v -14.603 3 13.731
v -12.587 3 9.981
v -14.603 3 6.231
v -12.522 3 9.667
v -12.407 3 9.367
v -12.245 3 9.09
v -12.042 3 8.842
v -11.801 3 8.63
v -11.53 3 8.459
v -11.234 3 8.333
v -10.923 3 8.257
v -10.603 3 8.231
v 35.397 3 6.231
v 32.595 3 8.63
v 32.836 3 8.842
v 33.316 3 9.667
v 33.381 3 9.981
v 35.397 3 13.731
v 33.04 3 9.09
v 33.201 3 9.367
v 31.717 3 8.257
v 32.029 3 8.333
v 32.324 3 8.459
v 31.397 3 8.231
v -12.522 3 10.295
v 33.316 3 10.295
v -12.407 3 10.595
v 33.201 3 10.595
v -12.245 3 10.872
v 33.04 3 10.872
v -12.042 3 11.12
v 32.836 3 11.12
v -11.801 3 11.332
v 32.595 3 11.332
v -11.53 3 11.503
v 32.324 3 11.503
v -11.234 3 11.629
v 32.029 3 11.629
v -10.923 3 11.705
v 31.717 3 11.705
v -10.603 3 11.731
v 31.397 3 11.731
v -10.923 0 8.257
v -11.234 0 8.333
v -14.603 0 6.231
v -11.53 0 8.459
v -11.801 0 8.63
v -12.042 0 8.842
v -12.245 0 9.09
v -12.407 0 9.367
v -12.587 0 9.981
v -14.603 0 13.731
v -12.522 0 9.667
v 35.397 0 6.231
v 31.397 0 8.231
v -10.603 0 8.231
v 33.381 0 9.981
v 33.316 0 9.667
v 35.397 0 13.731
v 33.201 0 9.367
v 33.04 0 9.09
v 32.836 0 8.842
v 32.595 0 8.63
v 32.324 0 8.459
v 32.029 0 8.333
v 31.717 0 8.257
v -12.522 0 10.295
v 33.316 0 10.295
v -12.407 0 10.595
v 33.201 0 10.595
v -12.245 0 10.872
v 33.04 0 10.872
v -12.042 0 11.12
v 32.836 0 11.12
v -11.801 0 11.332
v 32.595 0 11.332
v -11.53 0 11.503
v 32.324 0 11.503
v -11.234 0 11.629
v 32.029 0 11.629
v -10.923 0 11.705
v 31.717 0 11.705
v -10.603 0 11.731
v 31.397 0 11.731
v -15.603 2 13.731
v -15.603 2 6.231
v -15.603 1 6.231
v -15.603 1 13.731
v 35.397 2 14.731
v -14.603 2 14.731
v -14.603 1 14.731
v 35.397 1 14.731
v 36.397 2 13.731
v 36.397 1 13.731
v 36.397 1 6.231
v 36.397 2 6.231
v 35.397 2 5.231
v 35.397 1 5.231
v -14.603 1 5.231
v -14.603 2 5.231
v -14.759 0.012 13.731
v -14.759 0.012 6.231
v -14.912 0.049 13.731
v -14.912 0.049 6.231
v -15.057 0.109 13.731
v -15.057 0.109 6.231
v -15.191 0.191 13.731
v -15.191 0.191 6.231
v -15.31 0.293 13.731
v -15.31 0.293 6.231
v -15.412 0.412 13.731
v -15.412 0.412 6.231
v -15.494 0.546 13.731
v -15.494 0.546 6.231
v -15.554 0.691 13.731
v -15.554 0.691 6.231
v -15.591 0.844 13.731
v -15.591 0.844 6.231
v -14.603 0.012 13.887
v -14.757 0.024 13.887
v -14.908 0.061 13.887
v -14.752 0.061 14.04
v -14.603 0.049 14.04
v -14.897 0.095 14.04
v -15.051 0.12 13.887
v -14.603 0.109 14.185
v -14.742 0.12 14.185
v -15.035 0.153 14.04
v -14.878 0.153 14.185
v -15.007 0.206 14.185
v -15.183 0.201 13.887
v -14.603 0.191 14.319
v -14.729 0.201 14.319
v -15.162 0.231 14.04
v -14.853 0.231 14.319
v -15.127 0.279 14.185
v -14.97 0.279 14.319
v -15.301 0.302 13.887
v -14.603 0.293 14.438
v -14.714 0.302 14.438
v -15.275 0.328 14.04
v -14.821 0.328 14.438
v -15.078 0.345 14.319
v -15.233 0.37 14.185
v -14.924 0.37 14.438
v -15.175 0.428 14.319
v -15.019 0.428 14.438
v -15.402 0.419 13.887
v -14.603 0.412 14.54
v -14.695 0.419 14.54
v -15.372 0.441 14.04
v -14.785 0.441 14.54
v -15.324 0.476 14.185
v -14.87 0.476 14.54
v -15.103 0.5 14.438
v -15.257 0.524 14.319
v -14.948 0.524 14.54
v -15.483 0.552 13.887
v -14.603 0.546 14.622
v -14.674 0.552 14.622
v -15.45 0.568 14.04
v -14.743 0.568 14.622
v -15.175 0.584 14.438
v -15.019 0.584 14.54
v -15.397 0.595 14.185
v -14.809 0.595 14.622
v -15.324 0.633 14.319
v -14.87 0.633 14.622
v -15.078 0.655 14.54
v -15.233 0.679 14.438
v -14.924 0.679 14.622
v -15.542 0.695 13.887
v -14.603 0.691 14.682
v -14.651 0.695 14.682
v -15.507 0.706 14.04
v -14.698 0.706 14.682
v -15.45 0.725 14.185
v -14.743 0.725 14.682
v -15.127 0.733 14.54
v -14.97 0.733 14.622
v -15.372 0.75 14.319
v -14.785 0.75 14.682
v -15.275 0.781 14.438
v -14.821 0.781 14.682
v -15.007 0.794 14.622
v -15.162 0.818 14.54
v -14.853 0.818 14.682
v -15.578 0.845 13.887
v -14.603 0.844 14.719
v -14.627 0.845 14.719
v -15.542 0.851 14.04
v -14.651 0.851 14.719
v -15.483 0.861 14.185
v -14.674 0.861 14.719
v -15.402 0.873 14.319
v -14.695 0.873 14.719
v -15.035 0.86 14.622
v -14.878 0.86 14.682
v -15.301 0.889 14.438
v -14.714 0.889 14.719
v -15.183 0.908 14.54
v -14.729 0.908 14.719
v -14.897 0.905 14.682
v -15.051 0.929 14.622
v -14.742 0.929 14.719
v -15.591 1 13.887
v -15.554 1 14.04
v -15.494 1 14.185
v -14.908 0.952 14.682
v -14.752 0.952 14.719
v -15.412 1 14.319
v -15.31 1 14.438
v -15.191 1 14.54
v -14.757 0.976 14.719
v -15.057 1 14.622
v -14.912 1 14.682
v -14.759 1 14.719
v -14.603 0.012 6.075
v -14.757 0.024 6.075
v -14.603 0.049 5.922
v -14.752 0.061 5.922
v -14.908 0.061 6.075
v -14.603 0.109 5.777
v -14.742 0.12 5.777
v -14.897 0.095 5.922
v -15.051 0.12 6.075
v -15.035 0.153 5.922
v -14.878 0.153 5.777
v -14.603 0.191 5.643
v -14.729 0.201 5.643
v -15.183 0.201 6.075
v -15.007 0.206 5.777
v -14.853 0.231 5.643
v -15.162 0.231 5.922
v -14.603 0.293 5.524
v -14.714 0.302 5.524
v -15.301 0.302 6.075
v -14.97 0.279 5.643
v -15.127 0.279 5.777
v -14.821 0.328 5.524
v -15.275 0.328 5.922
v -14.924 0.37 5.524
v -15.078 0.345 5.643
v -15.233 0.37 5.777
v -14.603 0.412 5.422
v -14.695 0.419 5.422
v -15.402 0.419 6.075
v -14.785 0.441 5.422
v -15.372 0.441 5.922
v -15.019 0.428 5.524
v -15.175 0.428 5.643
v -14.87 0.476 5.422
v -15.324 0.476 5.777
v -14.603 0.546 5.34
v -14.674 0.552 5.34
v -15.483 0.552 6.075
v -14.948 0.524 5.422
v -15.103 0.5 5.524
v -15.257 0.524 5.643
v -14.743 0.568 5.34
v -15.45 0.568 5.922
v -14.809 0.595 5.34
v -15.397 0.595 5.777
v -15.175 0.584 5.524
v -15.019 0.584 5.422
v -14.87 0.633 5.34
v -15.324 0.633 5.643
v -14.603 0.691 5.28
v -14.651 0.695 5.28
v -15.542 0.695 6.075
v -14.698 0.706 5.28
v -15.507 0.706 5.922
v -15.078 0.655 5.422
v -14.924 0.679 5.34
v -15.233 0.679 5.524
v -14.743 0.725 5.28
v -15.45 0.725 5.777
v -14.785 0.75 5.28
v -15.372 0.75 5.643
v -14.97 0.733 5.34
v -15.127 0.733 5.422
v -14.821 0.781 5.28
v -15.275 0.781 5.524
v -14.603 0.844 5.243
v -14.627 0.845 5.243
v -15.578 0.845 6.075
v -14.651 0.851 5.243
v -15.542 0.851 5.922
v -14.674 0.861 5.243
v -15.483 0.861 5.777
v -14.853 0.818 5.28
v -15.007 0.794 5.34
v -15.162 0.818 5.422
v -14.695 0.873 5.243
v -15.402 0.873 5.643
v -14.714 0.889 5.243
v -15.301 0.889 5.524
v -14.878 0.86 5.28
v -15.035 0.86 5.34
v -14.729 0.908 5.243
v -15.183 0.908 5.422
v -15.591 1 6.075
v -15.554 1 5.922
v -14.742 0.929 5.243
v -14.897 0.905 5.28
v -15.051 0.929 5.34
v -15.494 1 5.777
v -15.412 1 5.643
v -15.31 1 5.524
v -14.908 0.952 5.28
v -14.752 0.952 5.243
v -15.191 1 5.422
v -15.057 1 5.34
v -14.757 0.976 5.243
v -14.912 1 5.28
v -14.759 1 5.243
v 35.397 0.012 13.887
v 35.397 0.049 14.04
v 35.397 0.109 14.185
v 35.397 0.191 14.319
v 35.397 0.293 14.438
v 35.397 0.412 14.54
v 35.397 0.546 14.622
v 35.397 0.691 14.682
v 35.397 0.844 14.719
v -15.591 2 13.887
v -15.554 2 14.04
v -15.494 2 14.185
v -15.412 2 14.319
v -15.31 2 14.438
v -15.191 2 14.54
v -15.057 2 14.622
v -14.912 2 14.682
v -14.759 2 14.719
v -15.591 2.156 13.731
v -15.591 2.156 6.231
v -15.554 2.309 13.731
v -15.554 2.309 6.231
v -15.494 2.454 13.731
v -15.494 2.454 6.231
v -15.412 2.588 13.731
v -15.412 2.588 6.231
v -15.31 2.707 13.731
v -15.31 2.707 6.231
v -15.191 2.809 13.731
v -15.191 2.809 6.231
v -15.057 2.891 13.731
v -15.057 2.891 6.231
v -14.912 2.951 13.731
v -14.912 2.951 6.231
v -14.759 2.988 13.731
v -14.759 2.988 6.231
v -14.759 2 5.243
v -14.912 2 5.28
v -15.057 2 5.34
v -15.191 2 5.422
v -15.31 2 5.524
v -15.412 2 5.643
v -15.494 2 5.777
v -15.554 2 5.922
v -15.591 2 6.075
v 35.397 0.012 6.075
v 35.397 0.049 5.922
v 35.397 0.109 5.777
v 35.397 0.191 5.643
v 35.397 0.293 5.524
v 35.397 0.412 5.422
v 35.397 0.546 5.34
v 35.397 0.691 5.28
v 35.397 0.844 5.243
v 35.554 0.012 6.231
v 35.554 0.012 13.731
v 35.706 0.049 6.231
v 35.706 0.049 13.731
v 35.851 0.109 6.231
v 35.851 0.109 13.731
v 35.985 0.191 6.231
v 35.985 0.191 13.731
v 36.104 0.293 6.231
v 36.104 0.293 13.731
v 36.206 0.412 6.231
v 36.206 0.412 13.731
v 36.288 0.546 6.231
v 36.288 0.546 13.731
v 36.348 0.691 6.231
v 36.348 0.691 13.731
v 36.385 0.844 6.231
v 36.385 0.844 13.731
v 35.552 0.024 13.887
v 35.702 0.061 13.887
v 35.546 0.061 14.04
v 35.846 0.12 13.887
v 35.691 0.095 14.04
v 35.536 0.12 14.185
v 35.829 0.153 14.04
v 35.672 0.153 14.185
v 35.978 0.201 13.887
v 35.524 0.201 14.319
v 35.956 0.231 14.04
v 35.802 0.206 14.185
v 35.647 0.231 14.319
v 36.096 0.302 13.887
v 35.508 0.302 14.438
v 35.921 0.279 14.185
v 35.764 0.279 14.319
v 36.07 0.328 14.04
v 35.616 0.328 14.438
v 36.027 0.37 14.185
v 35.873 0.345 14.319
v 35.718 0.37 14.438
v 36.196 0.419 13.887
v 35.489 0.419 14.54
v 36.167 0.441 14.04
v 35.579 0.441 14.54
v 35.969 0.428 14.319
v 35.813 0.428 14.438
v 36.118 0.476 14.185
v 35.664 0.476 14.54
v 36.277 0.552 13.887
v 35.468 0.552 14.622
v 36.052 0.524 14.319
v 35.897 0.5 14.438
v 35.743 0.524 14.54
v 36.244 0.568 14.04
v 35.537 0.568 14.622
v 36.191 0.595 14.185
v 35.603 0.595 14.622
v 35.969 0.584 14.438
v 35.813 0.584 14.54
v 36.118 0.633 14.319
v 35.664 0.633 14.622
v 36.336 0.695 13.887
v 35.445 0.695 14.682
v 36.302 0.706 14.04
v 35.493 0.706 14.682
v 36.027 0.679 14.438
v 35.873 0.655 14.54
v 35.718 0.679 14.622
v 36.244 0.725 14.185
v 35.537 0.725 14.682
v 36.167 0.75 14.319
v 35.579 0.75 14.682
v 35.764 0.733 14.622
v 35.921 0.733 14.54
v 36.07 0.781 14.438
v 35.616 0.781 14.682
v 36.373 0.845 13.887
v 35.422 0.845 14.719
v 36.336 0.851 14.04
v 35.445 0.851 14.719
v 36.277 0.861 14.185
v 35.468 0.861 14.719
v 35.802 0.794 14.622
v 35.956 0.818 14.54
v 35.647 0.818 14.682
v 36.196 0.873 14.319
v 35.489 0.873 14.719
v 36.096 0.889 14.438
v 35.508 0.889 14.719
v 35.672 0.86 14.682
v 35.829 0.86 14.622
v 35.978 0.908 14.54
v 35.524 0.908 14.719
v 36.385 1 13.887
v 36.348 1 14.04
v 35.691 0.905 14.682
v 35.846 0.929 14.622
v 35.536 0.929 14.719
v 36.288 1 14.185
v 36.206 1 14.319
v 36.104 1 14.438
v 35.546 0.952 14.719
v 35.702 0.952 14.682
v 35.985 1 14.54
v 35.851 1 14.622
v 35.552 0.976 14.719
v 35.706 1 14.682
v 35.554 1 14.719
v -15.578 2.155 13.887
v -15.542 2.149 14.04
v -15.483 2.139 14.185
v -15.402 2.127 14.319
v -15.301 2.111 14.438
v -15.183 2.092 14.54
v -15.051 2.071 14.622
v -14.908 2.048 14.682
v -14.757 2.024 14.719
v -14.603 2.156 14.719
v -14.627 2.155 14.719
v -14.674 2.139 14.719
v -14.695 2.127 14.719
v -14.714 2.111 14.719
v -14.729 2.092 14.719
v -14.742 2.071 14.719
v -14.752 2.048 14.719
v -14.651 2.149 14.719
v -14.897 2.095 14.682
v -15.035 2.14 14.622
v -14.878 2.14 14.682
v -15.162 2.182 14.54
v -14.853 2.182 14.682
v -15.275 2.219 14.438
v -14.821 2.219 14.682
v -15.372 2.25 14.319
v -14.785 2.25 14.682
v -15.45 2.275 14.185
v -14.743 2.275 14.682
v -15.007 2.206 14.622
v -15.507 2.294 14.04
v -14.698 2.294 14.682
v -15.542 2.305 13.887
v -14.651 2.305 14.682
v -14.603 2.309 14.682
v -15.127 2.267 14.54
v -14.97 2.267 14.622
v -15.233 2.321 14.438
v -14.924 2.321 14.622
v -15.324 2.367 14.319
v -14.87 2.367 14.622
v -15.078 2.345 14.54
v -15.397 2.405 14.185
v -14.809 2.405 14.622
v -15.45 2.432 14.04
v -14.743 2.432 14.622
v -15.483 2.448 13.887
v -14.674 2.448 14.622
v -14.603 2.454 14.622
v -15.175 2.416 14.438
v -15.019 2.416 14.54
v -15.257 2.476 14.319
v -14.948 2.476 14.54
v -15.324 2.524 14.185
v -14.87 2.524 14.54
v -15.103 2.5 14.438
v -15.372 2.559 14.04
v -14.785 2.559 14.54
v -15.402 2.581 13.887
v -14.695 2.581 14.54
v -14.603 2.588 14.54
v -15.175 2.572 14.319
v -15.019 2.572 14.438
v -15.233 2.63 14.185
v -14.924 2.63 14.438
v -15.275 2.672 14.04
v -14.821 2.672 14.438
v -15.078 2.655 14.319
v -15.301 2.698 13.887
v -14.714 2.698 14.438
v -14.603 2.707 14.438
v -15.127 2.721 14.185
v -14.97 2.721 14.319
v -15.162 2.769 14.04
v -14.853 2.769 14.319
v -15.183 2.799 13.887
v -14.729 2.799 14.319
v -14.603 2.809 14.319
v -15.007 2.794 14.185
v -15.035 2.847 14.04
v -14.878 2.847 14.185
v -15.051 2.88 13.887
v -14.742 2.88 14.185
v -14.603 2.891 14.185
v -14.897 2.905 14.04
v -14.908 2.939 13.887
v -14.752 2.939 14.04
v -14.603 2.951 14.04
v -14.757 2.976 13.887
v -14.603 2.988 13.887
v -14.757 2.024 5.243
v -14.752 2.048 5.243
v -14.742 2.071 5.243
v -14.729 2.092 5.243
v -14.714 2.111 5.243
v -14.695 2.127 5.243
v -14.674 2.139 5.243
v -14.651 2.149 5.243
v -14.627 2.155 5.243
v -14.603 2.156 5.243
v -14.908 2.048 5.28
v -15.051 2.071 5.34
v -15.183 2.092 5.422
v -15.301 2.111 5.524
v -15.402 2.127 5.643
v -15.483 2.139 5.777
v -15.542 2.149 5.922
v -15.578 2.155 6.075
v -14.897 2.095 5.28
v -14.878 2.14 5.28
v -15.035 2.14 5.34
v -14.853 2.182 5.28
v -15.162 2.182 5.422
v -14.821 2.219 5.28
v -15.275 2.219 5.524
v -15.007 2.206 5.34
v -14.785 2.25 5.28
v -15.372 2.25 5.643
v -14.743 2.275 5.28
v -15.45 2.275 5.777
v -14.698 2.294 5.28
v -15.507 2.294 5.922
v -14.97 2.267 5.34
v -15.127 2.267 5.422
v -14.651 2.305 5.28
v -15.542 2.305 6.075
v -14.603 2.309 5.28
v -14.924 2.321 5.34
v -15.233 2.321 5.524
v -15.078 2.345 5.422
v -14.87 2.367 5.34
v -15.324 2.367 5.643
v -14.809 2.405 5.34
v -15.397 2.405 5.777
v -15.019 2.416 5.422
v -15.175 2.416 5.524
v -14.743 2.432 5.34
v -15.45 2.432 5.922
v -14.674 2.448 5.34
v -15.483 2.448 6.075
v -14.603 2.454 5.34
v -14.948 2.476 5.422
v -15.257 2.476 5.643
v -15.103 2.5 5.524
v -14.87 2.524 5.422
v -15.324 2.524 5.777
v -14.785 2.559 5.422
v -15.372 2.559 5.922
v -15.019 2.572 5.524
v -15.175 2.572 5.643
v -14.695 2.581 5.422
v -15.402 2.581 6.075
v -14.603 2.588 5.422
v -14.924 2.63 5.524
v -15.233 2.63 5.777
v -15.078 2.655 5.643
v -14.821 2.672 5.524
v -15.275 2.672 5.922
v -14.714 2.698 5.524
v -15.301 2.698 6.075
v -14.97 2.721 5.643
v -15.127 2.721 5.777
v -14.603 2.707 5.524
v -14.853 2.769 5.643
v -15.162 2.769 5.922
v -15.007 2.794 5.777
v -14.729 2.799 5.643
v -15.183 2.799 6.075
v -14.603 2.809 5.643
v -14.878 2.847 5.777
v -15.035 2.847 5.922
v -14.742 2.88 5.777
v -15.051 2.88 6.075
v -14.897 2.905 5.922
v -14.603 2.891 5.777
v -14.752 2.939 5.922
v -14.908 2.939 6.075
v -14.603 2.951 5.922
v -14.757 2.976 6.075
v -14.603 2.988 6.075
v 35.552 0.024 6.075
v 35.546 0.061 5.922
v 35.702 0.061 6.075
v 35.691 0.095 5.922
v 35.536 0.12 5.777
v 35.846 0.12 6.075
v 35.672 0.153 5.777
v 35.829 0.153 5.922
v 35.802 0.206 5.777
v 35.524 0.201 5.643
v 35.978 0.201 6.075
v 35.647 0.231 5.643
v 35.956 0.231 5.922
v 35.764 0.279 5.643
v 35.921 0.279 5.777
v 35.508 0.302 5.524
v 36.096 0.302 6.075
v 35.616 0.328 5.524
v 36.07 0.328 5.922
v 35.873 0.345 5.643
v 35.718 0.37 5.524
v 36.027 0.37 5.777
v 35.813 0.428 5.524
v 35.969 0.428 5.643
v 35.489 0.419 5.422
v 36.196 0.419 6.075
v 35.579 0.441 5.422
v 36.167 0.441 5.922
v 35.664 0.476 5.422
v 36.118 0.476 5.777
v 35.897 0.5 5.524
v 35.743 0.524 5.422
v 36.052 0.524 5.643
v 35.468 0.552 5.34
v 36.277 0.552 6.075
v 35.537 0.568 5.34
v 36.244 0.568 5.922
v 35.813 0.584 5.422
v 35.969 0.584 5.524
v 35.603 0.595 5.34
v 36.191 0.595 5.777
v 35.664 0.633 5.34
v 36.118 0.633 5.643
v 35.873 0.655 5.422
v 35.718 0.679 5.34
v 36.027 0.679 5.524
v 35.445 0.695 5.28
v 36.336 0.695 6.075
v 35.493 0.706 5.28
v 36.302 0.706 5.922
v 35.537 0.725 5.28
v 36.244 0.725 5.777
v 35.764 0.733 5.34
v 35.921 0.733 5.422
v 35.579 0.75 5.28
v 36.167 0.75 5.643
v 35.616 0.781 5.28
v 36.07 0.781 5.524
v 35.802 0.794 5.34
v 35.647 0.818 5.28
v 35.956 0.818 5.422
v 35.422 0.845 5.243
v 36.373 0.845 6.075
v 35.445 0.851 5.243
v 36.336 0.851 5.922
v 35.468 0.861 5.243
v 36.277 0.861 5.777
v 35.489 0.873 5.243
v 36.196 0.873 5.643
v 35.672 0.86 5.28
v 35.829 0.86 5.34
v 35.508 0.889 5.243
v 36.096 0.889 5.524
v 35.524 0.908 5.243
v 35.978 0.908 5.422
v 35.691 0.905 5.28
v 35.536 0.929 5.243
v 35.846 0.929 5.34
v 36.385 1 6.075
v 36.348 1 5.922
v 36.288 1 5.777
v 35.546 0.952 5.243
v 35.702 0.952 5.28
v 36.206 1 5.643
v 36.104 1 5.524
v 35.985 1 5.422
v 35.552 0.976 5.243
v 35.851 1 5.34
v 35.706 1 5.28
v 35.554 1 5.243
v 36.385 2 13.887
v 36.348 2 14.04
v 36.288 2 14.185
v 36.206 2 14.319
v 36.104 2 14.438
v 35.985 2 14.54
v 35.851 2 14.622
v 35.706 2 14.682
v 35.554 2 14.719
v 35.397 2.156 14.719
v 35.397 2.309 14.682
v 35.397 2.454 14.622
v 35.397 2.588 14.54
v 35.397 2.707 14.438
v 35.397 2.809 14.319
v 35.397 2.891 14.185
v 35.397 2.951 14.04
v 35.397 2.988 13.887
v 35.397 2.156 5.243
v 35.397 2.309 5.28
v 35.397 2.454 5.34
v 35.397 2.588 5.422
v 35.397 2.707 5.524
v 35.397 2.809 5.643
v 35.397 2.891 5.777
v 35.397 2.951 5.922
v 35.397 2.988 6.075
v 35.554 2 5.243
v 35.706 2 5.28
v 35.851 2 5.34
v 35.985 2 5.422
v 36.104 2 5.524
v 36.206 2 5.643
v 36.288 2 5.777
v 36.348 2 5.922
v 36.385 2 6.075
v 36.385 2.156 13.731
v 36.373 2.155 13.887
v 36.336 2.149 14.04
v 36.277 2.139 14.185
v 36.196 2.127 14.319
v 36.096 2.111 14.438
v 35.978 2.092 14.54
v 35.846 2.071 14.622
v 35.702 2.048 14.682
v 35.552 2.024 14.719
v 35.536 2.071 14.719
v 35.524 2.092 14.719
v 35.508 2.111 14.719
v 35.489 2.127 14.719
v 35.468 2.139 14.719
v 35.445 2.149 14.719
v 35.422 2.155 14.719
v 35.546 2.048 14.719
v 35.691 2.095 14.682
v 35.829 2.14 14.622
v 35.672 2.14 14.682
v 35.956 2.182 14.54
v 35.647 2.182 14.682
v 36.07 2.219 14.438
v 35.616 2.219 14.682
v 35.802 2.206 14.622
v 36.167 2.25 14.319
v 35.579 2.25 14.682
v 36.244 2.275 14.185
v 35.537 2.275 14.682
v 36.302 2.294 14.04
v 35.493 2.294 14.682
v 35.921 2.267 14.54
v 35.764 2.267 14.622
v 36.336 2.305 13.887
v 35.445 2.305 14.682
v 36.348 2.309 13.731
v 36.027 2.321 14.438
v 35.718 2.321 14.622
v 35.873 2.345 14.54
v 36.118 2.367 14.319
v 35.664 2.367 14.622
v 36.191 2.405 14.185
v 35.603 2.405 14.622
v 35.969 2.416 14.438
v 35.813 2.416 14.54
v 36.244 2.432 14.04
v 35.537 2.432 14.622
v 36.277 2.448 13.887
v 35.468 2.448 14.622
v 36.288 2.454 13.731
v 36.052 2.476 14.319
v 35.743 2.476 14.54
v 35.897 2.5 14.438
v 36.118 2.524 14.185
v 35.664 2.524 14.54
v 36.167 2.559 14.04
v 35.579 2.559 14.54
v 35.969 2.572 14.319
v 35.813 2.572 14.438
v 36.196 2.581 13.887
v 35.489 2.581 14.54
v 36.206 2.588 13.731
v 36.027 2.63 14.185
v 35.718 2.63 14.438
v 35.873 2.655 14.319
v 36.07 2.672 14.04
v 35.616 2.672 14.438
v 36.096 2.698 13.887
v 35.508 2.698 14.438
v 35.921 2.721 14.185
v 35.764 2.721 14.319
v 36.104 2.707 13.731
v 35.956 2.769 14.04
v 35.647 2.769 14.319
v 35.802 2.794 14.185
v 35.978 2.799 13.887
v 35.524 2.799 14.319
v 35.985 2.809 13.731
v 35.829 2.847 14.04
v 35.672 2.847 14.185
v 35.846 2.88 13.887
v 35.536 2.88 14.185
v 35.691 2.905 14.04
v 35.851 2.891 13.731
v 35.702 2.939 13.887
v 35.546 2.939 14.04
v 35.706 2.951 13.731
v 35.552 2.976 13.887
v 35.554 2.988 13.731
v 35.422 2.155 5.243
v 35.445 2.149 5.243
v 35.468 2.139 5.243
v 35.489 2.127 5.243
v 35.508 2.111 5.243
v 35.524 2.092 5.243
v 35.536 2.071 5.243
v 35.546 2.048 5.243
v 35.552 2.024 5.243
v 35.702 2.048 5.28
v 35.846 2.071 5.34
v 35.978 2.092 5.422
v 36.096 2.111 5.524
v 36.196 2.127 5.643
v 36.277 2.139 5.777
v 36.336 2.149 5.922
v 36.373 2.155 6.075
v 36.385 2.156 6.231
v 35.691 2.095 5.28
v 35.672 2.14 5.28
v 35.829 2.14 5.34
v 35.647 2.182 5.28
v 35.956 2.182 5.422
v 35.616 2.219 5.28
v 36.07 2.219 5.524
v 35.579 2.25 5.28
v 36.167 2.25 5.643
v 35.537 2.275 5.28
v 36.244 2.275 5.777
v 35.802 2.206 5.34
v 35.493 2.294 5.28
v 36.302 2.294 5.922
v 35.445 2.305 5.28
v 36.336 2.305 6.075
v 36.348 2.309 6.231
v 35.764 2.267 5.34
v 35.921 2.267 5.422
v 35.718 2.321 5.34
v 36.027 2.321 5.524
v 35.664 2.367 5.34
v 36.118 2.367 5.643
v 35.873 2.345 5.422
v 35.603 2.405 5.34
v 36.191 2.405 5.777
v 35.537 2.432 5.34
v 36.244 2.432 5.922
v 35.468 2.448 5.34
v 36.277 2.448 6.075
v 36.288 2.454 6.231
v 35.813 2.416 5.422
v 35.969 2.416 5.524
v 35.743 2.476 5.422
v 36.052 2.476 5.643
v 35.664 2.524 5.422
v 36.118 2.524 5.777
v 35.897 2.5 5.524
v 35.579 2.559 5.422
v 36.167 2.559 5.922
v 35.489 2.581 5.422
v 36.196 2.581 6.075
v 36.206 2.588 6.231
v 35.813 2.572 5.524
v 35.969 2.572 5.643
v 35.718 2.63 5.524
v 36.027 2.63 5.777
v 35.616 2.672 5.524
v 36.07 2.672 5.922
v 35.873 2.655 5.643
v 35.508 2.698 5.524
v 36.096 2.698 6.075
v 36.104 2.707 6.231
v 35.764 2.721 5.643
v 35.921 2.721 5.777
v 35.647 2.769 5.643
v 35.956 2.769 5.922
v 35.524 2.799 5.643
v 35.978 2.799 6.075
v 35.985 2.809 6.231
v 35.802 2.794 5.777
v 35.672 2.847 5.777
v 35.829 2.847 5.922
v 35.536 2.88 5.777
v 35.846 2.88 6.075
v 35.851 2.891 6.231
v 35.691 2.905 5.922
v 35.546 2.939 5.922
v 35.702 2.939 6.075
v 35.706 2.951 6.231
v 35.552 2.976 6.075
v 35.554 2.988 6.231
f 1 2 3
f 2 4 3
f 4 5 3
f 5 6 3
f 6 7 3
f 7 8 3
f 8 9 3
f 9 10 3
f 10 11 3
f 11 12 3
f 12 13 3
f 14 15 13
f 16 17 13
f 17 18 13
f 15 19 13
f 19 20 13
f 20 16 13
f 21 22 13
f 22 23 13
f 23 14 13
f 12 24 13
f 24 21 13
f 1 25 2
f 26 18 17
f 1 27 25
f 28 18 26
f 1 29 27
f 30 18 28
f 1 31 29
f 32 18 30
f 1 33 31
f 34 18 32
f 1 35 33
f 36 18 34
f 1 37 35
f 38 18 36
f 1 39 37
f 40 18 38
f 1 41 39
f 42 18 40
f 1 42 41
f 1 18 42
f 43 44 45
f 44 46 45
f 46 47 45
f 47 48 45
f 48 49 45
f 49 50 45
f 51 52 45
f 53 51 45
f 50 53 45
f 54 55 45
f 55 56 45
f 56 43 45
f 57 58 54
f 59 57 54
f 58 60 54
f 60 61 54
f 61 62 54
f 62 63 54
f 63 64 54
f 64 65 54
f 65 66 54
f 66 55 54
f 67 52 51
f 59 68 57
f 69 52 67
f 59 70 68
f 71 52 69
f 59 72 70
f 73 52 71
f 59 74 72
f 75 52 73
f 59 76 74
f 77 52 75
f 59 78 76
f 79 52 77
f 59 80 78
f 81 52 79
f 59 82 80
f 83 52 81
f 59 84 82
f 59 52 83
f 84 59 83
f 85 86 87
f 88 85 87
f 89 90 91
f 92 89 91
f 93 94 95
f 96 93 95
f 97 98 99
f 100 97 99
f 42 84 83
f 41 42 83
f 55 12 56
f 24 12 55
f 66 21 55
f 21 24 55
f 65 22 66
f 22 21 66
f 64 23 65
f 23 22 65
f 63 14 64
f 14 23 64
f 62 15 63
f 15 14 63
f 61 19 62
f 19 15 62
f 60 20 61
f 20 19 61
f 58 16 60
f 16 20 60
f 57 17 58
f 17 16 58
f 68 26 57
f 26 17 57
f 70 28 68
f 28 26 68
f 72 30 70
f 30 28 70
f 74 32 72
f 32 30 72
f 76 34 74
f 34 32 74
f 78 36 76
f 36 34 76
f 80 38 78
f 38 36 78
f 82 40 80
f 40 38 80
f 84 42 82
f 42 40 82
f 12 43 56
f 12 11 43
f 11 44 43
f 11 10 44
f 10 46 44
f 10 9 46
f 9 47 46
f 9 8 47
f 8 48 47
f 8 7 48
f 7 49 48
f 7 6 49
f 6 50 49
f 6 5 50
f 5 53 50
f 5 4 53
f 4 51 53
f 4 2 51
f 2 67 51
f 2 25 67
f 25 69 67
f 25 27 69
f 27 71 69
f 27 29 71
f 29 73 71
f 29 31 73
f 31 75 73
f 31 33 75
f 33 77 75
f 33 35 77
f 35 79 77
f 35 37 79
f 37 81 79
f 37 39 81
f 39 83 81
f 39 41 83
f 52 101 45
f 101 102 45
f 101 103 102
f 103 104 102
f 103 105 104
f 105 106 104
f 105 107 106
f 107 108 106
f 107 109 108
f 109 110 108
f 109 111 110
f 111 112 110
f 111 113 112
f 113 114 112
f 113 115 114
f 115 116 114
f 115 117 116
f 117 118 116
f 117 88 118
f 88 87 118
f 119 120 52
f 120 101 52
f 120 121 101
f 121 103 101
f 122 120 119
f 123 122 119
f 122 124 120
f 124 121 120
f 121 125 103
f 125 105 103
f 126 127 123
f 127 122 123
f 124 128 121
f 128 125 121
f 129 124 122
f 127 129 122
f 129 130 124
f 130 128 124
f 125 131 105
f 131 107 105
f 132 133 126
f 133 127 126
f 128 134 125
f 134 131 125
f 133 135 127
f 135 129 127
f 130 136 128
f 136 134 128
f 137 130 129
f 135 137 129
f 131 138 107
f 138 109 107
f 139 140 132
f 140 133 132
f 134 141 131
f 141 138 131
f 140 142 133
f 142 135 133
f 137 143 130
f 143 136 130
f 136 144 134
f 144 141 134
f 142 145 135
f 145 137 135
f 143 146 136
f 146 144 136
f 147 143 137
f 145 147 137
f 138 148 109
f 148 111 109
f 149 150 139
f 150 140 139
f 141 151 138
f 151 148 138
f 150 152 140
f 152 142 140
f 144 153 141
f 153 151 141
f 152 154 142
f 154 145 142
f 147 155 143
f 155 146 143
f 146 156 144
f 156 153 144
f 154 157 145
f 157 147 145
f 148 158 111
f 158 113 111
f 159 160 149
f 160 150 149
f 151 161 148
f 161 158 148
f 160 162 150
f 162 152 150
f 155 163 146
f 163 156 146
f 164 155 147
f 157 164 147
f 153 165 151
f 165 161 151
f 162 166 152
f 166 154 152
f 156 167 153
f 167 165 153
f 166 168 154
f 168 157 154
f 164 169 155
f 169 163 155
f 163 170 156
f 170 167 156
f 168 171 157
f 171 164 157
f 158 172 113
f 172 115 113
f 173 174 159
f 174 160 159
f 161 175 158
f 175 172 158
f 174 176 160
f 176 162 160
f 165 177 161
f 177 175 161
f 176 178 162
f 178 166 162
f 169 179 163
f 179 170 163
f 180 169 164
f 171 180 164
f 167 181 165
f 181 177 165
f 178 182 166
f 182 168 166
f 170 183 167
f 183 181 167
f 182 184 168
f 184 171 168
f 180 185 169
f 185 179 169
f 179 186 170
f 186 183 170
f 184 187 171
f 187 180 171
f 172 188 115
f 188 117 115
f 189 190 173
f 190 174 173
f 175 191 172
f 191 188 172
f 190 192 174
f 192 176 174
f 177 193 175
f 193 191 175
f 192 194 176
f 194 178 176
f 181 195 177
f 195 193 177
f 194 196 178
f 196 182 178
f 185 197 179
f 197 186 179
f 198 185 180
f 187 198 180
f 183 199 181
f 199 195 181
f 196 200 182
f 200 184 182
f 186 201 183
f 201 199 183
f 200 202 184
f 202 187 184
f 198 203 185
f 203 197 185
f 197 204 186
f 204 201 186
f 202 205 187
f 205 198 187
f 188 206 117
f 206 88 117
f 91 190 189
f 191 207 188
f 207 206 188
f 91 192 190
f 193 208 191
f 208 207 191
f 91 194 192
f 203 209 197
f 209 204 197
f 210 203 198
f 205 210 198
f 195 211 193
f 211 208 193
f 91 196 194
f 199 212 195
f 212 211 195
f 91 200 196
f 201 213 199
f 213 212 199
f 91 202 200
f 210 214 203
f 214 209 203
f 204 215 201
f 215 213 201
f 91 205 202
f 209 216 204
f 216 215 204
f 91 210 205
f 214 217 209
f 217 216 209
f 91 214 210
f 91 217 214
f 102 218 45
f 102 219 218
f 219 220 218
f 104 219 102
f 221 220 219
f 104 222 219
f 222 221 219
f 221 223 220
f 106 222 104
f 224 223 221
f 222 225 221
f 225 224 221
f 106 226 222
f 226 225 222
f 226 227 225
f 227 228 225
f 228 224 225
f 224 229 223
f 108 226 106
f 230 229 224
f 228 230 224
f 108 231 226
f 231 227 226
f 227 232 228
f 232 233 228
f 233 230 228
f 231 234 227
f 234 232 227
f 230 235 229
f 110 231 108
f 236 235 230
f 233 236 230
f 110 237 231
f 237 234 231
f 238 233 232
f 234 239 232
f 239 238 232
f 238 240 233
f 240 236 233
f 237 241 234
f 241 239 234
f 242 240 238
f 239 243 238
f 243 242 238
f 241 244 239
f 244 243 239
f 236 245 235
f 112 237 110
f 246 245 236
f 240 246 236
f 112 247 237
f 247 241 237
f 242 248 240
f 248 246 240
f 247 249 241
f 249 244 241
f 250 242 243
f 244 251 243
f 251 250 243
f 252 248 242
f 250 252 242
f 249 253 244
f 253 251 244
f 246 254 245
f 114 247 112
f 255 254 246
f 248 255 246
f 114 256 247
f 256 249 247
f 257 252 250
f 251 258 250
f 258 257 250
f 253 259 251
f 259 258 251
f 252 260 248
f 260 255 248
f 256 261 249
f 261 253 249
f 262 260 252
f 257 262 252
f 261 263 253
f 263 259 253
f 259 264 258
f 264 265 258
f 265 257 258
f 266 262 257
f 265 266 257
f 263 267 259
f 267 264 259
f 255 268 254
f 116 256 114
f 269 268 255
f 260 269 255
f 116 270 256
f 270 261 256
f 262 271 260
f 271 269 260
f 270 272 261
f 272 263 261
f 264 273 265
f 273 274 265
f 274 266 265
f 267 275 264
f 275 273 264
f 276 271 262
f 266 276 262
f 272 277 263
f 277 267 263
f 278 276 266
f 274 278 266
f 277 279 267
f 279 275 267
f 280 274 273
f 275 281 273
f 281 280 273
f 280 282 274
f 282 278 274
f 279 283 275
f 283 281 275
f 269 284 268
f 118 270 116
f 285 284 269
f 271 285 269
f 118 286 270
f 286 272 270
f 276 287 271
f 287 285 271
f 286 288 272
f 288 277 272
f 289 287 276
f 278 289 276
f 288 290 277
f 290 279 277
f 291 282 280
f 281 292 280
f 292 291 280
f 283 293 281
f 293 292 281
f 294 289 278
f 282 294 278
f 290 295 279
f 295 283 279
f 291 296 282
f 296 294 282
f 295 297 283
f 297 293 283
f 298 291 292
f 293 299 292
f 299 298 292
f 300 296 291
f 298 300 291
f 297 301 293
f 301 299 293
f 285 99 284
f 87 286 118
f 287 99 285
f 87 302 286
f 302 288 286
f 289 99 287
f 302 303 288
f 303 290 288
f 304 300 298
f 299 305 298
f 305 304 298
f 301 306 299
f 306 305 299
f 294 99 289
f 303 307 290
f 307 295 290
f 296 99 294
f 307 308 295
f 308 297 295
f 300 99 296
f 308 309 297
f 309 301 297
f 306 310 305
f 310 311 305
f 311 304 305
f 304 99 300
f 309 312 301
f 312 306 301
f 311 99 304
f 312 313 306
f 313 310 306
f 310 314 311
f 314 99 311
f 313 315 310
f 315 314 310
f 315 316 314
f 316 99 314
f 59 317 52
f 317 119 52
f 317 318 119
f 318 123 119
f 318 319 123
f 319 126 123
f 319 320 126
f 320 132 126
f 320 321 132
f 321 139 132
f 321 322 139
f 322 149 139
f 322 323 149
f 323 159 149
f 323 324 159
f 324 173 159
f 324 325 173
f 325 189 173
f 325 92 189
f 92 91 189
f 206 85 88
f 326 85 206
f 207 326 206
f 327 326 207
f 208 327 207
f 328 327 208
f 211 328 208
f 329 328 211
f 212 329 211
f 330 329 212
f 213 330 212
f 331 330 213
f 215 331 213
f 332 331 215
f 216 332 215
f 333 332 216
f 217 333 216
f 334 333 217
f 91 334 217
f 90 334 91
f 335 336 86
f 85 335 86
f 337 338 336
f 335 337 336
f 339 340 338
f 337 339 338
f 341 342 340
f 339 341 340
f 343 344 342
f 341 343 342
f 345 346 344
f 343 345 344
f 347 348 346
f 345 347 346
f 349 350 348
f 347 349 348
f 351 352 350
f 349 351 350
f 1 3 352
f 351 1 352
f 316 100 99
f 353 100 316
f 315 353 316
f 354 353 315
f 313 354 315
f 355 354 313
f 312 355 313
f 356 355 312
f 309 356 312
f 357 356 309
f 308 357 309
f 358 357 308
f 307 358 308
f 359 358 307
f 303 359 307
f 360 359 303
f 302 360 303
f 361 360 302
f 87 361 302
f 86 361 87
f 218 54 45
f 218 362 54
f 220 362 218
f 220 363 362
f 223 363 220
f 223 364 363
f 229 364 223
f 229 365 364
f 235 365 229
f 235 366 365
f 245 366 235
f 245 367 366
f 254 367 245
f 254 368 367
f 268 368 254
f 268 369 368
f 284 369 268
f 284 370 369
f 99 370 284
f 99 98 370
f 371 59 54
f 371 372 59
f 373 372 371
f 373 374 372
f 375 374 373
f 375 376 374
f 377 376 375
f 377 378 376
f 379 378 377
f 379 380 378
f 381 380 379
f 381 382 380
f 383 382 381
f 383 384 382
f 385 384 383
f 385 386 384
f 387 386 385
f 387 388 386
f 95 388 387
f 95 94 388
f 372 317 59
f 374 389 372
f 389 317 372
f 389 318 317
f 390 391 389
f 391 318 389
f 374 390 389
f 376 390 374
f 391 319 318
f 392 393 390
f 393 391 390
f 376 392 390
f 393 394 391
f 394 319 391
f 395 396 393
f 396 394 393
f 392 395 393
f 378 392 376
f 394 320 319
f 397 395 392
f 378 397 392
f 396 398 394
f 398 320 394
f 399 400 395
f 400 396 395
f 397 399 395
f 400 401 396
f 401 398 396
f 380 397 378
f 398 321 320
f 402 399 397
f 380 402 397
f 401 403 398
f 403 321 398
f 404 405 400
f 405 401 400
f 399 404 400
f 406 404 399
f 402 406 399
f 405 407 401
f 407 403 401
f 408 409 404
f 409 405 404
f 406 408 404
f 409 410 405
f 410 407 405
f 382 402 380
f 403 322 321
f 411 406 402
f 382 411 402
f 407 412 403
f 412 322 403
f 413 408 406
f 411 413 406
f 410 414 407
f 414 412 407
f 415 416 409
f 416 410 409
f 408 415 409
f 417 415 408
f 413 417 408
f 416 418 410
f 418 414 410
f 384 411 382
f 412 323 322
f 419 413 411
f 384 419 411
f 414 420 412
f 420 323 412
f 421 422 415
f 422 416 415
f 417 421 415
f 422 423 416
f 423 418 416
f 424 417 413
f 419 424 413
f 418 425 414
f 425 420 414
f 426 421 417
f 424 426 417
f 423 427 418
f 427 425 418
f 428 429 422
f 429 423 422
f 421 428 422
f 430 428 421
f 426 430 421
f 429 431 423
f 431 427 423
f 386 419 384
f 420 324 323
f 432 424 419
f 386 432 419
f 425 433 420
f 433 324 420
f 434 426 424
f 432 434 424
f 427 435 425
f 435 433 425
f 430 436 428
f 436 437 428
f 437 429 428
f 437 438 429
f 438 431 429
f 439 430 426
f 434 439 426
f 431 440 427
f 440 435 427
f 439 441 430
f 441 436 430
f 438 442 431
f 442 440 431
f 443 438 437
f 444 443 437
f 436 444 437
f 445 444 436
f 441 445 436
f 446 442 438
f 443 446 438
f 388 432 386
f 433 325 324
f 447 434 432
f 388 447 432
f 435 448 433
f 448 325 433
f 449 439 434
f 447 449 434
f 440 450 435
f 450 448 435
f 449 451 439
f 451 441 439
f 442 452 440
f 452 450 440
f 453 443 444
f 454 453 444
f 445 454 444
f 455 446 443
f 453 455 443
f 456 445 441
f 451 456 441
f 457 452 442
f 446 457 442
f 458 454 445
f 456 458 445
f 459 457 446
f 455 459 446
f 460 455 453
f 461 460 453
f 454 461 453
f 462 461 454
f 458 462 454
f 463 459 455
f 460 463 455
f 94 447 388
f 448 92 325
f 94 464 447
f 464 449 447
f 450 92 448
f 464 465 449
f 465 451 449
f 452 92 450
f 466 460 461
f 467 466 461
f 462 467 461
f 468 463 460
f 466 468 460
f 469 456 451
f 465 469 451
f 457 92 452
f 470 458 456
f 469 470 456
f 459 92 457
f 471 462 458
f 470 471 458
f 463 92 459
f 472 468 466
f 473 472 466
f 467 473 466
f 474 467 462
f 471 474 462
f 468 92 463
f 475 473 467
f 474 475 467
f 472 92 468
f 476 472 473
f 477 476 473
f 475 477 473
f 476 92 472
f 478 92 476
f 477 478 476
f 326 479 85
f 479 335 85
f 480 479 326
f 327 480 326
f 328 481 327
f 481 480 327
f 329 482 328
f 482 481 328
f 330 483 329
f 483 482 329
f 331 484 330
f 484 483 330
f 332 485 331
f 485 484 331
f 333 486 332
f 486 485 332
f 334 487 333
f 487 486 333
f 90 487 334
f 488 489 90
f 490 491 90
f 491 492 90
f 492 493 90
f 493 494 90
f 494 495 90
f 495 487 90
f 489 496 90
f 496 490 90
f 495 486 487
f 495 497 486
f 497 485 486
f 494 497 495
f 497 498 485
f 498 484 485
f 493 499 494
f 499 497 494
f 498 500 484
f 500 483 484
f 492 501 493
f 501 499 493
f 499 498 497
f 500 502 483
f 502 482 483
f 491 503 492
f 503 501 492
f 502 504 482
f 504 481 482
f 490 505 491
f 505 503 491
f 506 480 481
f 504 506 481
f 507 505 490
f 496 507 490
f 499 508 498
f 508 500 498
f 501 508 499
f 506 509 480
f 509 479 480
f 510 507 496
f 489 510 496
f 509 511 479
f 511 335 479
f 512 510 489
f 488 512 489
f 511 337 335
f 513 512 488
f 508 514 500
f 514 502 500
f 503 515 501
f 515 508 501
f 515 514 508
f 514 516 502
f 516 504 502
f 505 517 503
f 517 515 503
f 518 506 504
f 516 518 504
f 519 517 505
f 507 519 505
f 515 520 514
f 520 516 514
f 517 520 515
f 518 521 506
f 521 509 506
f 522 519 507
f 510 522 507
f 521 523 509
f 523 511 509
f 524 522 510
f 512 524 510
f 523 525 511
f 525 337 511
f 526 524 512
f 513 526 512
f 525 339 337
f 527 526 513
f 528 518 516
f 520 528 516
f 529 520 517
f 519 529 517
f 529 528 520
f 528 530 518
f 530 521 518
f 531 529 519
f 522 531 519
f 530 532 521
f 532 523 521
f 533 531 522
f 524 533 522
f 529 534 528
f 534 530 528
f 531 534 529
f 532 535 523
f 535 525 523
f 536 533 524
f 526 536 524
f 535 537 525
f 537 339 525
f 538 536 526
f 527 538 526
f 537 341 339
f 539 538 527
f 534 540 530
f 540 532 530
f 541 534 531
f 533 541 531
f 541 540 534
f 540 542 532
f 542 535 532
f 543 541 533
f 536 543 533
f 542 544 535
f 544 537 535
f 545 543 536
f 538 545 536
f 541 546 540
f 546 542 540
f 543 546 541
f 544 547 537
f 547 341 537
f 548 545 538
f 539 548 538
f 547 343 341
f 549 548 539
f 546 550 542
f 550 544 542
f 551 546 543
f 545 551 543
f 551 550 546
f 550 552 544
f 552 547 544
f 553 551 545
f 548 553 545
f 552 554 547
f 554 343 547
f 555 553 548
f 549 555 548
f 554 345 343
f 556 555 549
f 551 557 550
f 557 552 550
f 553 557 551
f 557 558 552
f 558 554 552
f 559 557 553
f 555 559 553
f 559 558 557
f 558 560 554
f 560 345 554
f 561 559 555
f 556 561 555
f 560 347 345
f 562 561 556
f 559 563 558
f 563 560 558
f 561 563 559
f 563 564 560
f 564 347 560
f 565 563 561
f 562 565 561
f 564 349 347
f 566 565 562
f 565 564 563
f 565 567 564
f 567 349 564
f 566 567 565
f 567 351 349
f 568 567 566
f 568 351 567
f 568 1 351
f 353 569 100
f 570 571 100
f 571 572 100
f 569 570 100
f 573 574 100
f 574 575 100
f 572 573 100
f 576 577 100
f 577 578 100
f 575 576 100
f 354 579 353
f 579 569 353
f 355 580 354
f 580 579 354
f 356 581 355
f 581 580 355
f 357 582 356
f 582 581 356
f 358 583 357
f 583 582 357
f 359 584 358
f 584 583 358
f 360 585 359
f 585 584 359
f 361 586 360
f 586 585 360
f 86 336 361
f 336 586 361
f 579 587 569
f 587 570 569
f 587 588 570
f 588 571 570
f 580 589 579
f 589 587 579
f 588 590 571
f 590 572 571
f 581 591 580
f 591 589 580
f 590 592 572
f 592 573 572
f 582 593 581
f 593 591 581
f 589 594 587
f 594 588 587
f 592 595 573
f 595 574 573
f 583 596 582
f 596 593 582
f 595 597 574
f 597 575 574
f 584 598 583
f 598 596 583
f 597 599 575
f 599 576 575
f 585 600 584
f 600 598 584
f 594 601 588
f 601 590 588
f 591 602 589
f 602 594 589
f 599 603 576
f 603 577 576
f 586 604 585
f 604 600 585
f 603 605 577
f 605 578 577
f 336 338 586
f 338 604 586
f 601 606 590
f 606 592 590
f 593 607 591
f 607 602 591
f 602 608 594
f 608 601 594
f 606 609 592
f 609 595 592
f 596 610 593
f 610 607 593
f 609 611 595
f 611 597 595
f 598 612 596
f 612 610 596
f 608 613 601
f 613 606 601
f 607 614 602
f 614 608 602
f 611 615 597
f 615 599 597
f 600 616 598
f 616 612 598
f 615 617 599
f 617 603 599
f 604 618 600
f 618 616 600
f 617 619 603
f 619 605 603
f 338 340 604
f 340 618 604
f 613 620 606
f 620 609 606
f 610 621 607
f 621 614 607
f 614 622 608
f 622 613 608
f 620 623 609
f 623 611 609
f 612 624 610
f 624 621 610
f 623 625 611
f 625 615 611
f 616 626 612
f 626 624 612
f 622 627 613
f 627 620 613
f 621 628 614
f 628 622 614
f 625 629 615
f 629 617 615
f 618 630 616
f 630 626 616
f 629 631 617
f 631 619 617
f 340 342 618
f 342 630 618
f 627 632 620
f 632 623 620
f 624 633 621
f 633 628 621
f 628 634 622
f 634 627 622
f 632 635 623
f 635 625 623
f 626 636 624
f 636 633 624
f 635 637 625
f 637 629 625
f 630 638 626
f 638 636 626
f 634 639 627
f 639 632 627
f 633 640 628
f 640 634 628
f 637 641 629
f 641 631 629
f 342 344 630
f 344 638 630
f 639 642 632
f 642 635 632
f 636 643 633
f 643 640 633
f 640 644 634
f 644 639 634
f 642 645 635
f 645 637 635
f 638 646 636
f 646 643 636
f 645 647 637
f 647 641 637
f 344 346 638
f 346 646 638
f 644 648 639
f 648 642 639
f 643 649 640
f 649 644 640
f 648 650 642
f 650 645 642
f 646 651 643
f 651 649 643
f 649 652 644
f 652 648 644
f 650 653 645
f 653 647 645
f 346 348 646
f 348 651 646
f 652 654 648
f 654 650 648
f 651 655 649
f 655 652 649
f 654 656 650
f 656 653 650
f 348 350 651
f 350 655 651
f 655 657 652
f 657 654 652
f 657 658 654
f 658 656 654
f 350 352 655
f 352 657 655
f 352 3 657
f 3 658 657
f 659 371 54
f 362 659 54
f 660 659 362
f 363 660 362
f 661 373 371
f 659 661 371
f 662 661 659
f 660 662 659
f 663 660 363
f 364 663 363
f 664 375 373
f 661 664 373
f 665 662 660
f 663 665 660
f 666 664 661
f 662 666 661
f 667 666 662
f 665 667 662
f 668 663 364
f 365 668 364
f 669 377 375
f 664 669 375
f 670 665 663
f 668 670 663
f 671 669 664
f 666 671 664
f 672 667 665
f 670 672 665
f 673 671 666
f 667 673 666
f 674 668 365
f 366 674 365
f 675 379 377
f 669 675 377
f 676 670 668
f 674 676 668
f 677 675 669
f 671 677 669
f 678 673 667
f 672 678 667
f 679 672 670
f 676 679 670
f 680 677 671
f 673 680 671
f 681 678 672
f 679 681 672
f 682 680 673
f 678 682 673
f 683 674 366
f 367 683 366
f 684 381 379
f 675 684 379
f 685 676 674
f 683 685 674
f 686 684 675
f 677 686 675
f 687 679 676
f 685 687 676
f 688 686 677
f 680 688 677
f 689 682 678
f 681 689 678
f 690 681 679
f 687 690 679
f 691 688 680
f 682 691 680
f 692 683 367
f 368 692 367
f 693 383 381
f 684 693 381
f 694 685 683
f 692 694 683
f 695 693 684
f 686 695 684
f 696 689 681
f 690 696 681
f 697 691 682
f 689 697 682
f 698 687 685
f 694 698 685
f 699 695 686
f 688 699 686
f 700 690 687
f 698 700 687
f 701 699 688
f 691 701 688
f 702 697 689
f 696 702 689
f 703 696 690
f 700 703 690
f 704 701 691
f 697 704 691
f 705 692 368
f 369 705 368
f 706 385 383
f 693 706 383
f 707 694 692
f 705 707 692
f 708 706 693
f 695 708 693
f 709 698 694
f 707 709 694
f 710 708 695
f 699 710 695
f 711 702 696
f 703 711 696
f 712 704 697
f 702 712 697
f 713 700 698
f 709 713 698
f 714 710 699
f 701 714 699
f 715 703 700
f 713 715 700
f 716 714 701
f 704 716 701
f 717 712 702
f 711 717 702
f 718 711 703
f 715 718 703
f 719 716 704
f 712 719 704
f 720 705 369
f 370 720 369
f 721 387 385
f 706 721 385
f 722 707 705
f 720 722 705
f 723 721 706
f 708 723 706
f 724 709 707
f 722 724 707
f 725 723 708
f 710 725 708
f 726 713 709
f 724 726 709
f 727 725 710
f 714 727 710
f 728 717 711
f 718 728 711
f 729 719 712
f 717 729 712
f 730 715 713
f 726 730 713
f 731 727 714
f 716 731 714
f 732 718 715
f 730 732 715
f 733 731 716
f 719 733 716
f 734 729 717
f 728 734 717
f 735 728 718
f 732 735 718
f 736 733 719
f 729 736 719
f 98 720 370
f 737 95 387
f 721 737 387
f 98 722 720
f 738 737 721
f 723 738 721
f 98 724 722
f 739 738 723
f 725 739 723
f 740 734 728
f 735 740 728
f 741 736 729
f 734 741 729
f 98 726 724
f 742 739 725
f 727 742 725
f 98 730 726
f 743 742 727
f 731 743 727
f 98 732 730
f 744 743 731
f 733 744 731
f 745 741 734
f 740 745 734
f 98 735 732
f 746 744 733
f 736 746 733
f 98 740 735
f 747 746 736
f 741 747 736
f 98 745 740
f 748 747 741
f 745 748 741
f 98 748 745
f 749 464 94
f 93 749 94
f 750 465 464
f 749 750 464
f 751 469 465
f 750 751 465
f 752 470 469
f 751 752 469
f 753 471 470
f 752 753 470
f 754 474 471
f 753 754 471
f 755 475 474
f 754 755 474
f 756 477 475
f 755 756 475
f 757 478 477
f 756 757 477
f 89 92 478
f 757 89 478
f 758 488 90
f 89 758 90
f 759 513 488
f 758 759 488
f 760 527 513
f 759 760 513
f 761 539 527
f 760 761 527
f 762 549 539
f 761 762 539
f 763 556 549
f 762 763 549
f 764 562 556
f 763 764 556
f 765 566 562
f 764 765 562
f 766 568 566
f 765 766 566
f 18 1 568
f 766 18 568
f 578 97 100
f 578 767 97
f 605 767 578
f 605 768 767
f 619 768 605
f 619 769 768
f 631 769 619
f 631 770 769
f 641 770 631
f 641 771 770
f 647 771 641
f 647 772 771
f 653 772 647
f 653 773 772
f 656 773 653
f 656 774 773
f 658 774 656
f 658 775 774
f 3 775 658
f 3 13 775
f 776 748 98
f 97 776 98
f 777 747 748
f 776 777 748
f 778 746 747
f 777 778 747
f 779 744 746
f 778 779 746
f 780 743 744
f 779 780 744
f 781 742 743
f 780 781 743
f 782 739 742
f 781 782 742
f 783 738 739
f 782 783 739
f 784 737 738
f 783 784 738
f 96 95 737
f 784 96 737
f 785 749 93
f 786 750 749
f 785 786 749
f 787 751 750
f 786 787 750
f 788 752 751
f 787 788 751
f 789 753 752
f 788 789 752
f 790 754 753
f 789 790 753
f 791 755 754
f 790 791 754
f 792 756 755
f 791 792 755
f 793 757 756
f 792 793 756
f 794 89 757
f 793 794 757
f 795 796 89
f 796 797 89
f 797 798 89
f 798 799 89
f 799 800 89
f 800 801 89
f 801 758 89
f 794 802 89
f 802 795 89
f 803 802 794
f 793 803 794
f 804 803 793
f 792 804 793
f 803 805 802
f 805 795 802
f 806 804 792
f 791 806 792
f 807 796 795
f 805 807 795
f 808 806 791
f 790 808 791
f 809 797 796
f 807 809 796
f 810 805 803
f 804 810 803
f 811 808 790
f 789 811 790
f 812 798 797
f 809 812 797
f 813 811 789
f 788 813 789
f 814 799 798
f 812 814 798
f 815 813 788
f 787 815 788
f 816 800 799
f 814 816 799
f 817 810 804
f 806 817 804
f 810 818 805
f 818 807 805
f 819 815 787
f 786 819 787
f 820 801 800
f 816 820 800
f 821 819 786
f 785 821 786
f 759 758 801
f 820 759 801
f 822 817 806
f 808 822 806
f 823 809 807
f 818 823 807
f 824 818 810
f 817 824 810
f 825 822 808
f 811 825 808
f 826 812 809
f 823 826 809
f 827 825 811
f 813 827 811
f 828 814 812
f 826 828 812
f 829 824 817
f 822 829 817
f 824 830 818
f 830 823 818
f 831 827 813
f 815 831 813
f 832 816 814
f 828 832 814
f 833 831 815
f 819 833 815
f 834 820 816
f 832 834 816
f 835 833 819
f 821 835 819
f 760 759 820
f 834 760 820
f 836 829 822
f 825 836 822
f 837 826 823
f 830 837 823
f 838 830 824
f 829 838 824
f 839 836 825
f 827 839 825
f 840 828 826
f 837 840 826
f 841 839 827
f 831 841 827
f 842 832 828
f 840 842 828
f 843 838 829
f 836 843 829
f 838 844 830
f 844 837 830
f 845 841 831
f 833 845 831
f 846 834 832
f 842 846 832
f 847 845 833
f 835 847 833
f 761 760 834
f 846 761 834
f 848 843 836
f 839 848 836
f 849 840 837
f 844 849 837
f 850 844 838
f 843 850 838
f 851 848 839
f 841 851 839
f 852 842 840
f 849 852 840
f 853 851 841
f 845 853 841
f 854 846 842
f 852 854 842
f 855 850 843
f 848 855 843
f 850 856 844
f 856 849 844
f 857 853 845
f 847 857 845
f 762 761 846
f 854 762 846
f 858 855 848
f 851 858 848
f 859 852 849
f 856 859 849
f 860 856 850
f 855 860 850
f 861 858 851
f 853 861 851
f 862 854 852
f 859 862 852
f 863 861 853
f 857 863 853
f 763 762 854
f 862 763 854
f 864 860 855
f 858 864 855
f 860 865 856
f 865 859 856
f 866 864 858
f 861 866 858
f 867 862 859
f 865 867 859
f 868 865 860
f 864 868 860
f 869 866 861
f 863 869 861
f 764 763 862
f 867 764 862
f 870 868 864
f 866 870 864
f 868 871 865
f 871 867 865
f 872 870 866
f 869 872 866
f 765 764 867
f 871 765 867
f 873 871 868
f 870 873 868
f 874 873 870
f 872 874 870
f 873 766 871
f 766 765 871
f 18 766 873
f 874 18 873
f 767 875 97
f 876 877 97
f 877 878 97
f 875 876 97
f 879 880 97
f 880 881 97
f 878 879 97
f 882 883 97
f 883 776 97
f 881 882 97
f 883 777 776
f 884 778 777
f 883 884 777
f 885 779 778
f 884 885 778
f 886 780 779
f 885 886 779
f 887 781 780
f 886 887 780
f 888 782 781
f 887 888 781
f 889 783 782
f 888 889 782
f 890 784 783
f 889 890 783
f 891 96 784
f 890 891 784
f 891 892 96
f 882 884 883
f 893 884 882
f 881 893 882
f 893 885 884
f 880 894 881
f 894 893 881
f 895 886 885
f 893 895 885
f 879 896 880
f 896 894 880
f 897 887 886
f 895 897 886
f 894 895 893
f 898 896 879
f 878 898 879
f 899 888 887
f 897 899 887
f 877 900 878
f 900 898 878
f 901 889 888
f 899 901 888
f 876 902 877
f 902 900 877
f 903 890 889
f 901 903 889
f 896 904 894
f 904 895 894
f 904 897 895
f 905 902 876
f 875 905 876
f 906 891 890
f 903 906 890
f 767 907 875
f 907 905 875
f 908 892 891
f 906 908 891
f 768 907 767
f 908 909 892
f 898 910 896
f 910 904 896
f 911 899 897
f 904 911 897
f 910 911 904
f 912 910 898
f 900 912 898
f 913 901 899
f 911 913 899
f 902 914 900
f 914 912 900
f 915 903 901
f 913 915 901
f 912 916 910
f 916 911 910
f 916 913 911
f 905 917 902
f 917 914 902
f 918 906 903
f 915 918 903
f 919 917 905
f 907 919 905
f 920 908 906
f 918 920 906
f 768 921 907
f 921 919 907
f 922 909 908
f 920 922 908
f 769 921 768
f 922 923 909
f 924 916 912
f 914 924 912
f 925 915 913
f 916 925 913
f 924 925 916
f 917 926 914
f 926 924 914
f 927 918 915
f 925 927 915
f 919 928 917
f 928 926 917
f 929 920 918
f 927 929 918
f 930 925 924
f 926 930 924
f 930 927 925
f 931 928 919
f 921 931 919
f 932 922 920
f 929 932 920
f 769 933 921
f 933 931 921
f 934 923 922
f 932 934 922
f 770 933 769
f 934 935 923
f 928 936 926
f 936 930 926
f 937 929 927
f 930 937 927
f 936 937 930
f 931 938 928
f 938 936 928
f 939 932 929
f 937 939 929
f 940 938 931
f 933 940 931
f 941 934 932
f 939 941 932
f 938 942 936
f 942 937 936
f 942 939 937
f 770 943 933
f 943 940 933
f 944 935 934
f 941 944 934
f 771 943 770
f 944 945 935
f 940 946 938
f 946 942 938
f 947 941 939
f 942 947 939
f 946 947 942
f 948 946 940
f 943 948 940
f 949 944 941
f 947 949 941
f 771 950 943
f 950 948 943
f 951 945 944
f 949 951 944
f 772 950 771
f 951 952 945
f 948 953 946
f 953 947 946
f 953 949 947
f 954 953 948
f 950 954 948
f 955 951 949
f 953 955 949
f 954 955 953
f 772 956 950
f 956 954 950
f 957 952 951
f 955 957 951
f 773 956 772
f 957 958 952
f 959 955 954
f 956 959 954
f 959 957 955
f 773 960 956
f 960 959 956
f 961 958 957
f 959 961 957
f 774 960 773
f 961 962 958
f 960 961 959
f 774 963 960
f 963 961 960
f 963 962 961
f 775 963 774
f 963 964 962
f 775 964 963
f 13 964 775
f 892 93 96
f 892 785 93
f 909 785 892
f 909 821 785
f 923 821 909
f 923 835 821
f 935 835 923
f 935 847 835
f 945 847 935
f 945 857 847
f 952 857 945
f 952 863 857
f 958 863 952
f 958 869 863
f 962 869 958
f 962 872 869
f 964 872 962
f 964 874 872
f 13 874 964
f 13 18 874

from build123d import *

# Parameters (mm, degrees)
SKETCH2_W           = 52
SKETCH2_H           = 9.5
SKETCH2_W_2         = 46
SKETCH2_H_2         = 3.5
BOSS_EXTRUDE1_DEPTH = 3
FILLET1_R           = 2
FILLET2_R           = 1


with BuildPart() as part:
    # Sketch2 → Boss-Extrude1 (new body)
    with BuildSketch(Plane(origin=(0, 0, 0), x_dir=(1, 0, 0), z_dir=(0, 1, 0))):
        with Locations((10.397099769, -9.98104869)):
            Rectangle(SKETCH2_W, SKETCH2_H)
        with Locations((10.397099769, -9.98104869)):
            Rectangle(SKETCH2_W_2, SKETCH2_H_2, mode=Mode.SUBTRACT)
    extrude(amount=BOSS_EXTRUDE1_DEPTH)

    # Fillet1
    # the kernel refuses this fillet: 2 mm, written as the material it adds along each edge
    with BuildSketch(Plane(origin=(33.397099769, 0, 11.73104869), x_dir=(-1, 0, 0), z_dir=(0, 1, 0)), Plane(origin=(33.397099769, 0, 8.23104869), x_dir=(0, 0, 1), z_dir=(0, 1, 0)), Plane(origin=(-12.602900231, 0, 11.73104869), x_dir=(0, 0, -1), z_dir=(0, 1, 0))) as fillet1_piece_1:
        with BuildLine():
            CenterArc((FILLET1_R, -FILLET1_R), FILLET1_R, 90, 90)
            Line((0, -FILLET1_R), (0, 0))
            Line((0, 0), (FILLET1_R, 0))
        make_face()
    extrude(amount=3)
    with BuildSketch(Plane(origin=(-12.602900231, 0, 8.23104869), x_dir=(0, 0, 1), z_dir=(0, 1, 0))) as fillet1_piece_2:
        with BuildLine():
            CenterArc((FILLET1_R, FILLET1_R), FILLET1_R, 180, 90)
            Line((0, FILLET1_R), (0, 0))
            Line((0, 0), (FILLET1_R, 0))
        make_face()
    extrude(amount=3)

    # Fillet2
    fillet2_edges = [part.edges().sort_by_distance(p)[0] for p in [
        (36.397099769, 3, 9.98104869),
        (10.397099769, 3, 5.23104869),
        (-15.602900231, 3, 9.98104869),
        (10.397099769, 0, 5.23104869),
        (36.397099769, 0, 9.98104869),
        (10.397099769, 0, 14.73104869),
        (-15.602900231, 0, 9.98104869),
        (-15.602900231, 1.5, 5.23104869),
        (36.397099769, 1.5, 5.23104869),
        (36.397099769, 1.5, 14.73104869),
        (-15.602900231, 1.5, 14.73104869),
        (10.397099769, 3, 14.73104869),
    ]]
    fillet(fillet2_edges, radius=FILLET2_R)


solid = part.part
